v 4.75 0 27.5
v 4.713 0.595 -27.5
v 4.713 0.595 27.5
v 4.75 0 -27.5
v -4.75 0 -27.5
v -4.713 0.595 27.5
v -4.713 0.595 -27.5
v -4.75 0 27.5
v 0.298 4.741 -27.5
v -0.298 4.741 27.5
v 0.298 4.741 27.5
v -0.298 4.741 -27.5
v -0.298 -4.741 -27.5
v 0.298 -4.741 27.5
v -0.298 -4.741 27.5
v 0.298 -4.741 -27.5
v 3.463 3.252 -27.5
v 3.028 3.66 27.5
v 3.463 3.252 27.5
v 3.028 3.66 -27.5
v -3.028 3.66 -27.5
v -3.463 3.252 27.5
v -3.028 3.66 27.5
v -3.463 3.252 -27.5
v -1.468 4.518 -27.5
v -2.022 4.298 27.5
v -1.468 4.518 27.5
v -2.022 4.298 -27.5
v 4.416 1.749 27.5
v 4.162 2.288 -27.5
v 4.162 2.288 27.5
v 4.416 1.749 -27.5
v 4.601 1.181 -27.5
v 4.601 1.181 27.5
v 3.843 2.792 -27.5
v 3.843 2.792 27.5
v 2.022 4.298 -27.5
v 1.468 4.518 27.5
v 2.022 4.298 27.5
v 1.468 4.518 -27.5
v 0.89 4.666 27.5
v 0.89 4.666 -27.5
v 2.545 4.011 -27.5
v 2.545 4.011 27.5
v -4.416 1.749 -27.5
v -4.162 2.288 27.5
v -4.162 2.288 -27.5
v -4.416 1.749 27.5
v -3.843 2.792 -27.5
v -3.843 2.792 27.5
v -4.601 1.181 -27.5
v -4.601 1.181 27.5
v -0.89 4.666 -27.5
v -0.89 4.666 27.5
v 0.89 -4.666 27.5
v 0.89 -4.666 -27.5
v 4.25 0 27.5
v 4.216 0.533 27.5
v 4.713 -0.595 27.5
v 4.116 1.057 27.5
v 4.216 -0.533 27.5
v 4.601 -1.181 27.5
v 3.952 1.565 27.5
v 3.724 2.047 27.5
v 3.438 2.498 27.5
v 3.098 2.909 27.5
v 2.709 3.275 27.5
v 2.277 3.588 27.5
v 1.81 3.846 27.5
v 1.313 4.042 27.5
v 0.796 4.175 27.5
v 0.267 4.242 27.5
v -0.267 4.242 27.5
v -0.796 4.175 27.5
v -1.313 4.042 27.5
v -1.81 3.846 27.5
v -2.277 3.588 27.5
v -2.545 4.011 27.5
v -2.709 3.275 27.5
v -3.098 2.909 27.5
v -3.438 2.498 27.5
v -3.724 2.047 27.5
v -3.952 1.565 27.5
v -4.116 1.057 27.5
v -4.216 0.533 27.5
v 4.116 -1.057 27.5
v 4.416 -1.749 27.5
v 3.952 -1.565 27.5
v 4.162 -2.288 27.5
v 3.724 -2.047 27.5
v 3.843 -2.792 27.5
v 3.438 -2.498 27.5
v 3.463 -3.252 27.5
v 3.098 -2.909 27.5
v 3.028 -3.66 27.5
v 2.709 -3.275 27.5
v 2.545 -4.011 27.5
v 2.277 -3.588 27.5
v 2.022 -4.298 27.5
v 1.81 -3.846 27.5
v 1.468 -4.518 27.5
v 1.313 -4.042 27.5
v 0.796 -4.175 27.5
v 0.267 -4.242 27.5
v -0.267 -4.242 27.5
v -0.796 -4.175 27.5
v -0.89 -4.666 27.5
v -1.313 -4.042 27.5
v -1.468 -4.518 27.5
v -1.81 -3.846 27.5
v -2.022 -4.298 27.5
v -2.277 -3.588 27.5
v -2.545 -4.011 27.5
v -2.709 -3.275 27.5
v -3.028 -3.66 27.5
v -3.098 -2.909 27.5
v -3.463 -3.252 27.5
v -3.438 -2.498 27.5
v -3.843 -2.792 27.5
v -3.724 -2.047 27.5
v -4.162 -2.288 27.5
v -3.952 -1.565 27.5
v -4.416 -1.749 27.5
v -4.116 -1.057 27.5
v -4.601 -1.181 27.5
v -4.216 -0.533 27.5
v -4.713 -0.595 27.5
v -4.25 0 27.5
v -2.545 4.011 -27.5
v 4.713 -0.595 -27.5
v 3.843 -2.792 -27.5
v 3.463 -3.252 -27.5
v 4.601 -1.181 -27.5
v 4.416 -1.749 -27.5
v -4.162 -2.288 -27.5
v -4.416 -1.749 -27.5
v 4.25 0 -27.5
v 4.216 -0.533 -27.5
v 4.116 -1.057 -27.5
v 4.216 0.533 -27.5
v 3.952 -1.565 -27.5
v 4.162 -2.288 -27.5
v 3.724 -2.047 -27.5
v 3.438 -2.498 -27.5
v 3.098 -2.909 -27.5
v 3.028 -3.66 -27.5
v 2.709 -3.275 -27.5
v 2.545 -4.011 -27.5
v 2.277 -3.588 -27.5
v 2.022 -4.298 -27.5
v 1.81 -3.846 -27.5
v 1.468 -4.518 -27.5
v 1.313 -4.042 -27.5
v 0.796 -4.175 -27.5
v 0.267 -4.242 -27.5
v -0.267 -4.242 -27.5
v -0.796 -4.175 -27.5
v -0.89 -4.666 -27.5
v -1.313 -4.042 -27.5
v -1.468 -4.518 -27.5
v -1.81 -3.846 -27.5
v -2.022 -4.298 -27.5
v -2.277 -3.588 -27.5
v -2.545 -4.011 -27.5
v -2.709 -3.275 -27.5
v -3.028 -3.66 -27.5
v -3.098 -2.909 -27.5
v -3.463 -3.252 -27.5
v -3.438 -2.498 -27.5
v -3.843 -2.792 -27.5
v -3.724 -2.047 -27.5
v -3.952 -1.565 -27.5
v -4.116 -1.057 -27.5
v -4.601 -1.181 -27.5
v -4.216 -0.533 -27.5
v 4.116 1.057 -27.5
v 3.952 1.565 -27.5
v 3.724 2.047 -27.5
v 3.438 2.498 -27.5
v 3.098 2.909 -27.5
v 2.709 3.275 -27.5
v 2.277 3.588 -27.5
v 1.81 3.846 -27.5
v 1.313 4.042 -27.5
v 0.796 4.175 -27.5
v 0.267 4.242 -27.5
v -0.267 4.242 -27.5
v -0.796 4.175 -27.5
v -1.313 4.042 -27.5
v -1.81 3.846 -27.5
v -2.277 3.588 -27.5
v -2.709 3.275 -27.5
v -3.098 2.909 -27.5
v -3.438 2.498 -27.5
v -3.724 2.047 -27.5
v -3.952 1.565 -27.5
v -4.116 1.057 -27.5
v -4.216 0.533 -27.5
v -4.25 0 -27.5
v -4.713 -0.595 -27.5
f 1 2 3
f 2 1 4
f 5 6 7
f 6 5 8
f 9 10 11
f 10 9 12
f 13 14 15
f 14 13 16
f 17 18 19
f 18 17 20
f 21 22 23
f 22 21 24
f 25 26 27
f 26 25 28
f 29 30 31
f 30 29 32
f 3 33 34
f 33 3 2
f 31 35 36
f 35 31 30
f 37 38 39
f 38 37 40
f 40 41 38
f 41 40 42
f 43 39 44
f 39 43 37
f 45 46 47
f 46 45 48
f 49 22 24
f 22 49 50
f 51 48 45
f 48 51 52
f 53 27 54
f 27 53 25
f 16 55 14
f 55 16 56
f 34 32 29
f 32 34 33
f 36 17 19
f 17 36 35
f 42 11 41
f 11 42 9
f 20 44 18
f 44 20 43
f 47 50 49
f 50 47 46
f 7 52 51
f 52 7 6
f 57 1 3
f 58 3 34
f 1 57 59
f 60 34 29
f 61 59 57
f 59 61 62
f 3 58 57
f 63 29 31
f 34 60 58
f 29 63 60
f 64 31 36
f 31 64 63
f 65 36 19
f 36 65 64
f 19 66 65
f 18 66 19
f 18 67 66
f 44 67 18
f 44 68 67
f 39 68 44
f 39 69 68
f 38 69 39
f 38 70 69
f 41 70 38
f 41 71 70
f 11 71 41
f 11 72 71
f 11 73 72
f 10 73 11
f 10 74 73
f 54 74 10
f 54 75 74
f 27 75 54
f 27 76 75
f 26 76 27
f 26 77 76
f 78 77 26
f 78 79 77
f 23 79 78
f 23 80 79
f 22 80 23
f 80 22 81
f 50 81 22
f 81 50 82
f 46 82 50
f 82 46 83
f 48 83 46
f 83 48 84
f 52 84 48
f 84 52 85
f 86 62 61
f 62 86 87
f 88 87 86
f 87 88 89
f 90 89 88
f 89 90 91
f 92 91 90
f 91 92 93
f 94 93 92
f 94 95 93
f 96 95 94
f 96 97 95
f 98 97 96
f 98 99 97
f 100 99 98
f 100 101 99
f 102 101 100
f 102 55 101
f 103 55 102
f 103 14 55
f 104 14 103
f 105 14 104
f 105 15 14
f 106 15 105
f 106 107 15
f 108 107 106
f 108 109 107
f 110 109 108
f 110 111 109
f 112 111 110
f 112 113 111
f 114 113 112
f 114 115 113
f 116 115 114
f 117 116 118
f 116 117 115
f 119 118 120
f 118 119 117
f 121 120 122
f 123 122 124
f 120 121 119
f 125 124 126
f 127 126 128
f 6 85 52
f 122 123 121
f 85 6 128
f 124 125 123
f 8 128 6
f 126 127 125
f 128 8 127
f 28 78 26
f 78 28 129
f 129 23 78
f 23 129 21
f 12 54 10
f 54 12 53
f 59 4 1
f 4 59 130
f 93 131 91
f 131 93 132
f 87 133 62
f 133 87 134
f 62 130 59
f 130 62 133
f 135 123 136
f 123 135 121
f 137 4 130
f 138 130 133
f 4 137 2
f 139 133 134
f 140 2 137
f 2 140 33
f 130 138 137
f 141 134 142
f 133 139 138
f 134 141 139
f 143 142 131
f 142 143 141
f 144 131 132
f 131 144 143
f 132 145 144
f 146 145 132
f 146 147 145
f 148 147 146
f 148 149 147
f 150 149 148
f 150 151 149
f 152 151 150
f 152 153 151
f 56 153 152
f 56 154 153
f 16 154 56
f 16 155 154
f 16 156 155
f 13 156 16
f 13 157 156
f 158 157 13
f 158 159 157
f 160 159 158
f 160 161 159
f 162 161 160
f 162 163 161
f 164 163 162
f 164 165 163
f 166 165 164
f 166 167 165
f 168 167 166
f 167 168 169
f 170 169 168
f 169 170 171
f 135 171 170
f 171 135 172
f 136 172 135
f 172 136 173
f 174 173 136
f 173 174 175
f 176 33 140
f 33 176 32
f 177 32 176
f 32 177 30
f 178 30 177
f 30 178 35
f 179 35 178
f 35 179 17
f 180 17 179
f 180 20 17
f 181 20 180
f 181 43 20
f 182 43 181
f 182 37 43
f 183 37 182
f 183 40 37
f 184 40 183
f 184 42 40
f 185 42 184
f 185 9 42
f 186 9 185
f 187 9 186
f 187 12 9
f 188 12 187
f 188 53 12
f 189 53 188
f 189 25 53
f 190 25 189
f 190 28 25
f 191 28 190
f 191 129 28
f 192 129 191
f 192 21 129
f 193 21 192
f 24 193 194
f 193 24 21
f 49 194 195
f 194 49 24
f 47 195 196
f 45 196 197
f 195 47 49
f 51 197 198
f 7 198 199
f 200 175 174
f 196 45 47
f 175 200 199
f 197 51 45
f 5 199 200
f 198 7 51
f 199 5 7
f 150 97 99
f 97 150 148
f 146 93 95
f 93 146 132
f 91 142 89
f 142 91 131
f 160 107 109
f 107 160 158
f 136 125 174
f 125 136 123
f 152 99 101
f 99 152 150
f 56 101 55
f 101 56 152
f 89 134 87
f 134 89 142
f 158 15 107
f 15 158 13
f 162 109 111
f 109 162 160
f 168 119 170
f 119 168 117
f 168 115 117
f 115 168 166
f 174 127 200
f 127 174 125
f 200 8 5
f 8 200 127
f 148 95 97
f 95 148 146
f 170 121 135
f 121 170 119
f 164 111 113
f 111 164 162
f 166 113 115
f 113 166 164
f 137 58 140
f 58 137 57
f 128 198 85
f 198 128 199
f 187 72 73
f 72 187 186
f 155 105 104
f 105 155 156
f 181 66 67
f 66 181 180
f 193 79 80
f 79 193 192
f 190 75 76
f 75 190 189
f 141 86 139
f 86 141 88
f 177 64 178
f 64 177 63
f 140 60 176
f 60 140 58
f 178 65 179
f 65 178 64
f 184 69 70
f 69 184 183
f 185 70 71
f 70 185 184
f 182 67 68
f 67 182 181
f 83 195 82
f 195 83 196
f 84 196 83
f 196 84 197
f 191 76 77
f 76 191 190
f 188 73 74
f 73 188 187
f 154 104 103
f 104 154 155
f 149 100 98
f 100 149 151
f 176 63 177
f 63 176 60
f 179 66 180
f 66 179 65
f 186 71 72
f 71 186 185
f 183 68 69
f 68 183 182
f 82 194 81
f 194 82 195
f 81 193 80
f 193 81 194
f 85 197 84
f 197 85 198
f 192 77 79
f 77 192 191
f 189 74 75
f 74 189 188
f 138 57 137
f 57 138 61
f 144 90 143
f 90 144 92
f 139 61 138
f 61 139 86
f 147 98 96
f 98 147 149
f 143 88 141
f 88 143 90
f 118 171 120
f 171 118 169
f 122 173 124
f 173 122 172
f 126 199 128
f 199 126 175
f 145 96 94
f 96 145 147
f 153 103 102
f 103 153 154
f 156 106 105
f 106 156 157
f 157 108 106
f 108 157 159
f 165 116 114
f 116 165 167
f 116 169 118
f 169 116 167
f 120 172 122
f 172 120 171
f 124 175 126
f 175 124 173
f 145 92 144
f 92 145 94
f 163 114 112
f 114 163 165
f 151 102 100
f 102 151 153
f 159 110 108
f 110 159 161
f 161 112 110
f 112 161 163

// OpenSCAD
$fn = 50;


difference() {
	union() {
		translate(v = [0, 0, -27.5000000000]) {
			cylinder(h = 55, r = 4.7500000000);
		}
	}
	union() {
		translate(v = [0, 0, -100.0000000000]) {
			cylinder(h = 200, r = 4.2500000000);
		}
	}
}
